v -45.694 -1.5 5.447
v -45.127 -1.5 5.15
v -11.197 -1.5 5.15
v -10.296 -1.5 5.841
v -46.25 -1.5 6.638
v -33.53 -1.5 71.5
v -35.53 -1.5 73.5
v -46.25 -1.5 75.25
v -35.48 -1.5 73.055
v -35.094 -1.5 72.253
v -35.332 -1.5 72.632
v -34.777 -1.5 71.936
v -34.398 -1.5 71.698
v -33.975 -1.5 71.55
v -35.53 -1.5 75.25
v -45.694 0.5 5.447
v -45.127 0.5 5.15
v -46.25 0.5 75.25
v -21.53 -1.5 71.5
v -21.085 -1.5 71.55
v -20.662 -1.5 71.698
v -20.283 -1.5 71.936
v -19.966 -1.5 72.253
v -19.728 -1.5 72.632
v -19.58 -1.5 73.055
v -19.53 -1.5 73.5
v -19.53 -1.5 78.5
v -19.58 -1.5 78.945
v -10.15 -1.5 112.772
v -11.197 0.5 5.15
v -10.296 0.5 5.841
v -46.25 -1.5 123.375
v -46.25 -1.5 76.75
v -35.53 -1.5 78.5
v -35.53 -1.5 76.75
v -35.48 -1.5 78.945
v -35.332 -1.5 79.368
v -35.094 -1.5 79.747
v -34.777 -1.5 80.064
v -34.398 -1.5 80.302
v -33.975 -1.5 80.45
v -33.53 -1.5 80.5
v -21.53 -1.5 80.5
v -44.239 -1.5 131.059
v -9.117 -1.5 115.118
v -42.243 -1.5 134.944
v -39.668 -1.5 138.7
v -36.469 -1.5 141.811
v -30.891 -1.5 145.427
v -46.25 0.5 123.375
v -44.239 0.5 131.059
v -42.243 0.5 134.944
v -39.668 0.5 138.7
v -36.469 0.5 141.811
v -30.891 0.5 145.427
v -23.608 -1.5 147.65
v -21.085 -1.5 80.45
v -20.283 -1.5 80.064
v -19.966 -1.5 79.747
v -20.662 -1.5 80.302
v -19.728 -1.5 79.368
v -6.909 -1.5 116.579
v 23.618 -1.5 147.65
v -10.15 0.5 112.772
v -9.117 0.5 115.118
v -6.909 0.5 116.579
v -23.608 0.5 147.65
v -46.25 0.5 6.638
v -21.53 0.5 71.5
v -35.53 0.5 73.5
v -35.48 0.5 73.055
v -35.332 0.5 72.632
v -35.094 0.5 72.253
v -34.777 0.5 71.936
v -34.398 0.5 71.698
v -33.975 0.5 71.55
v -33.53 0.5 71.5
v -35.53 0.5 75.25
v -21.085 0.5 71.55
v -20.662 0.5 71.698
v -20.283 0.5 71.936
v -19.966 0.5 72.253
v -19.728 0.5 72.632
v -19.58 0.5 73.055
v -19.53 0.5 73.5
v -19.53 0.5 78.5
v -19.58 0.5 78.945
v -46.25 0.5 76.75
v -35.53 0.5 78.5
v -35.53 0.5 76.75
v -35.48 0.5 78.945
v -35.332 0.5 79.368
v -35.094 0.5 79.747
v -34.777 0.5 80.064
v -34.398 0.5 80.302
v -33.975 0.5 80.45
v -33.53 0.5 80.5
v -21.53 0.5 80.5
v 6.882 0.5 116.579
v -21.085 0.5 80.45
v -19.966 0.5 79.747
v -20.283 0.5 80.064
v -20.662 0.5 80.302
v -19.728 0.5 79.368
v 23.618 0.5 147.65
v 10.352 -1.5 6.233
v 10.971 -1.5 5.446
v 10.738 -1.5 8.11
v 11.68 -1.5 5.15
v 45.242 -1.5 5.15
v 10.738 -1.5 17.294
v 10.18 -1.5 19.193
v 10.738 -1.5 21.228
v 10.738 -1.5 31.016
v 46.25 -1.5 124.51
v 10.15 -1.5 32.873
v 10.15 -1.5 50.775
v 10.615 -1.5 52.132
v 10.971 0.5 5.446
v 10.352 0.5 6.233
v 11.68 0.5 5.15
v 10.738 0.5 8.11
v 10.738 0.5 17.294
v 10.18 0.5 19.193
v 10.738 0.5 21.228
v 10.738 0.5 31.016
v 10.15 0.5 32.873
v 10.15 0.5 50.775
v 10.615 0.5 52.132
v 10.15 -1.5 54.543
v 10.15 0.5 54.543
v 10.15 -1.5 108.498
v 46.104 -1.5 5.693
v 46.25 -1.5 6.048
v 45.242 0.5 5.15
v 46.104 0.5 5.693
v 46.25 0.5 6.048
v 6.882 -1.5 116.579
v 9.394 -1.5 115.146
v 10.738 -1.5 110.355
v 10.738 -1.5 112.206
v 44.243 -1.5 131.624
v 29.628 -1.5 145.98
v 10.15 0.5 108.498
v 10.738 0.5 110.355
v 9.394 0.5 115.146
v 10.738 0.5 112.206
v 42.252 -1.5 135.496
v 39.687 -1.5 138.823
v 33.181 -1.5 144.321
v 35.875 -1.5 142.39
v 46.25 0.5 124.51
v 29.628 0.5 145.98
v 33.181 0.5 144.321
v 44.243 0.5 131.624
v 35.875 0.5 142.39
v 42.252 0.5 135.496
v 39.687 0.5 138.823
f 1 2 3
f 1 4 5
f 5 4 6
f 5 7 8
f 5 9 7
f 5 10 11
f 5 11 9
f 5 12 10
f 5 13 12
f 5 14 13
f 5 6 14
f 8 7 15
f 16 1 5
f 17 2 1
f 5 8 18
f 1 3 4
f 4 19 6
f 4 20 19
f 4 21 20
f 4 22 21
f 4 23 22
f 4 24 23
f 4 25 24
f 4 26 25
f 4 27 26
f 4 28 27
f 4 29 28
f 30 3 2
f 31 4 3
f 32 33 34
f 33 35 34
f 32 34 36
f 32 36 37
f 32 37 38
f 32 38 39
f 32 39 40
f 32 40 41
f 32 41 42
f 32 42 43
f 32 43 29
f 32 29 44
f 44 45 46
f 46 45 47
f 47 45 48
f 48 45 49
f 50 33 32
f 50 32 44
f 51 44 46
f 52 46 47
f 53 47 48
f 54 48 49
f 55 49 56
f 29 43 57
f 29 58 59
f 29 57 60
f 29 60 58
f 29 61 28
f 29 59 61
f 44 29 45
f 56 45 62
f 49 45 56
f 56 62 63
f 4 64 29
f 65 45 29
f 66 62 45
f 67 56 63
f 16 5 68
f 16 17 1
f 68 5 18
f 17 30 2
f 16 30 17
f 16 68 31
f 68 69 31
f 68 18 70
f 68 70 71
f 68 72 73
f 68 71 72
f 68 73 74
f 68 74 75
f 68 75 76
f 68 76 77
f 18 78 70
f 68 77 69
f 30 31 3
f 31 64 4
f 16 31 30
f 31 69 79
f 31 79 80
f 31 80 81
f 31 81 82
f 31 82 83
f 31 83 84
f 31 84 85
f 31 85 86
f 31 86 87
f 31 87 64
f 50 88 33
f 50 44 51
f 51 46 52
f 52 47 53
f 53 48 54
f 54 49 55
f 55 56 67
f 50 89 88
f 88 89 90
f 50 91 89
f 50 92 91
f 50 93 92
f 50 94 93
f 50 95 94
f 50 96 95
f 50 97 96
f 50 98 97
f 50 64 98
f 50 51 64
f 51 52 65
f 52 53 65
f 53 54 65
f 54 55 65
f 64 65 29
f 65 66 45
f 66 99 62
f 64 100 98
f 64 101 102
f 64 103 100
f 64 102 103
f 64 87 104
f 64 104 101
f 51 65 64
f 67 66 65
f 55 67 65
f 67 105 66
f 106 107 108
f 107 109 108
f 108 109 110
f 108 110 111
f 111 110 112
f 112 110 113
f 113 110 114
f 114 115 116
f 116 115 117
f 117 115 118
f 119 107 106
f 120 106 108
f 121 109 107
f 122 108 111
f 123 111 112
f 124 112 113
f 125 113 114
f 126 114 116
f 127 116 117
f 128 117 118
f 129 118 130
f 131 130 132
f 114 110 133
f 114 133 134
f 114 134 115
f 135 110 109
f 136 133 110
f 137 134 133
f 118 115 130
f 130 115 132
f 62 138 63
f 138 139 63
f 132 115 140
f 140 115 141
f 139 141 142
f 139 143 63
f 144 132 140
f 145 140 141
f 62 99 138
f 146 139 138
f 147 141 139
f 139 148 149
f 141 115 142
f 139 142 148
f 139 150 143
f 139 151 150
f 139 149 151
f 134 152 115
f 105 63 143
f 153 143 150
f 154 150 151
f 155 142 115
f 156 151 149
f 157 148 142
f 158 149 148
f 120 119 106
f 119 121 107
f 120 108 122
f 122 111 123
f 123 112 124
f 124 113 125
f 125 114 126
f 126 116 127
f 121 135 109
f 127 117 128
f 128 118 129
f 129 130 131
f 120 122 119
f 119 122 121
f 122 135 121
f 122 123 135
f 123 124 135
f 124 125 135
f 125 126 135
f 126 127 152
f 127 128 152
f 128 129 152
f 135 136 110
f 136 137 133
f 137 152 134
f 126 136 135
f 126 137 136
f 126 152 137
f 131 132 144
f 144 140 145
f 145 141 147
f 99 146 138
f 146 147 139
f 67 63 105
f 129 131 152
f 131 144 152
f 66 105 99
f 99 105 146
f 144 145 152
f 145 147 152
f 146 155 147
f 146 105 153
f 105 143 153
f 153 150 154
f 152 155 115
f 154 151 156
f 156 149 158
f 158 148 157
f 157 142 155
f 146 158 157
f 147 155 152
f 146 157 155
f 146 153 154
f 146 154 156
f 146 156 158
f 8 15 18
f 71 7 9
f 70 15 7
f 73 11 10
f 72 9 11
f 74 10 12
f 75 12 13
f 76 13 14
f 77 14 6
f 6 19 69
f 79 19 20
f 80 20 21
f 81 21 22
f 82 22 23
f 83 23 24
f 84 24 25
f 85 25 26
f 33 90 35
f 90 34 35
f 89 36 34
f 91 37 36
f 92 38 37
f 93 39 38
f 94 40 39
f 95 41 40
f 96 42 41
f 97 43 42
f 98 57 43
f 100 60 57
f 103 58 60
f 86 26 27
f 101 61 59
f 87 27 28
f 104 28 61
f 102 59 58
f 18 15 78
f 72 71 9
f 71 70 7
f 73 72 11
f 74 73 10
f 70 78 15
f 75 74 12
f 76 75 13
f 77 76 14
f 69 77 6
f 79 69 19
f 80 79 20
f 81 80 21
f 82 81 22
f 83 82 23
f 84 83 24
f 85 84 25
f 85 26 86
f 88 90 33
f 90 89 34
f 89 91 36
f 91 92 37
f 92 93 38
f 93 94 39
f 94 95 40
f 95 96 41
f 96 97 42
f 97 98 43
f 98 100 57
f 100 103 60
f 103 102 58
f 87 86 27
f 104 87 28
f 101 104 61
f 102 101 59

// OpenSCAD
// file: shape_pts.scad
// Letter n traced from images/engenesis_n.png (Housing + Diffuser Front View) via octolamp-lamp-base.
// Housing exterior 100.00 x 150.00 mm (94.00 x 144.00 mm interior + 3.00 mm Octolamp wall). Open-bottom n, no counter.
// Diffuser carries the centred top notch from the reference; the housing keeps a standard rounded top.

shape_w = 94.00;
shape_h = 144.00;
rec_chip_x = -28.00;
rec_chip_z = 98.50;
rec_cable_x = -28.00;
rec_ziptie_z = 73.0;
rec_keyhole_z = 59.0;
rec_slit_dir = -1;
rec_snap_top_x = 0.17;
rec_snap_bot_x = -28.27;
rec_pillars = [[26.0, 120.0], [28.0, 90.0], [28.0, 60.0]];

shape_pts = [[47.000,120.214],[47.000,1.500],[46.706,0.786],[45.458,0.000],[11.530,0.000],[10.502,0.429],[9.547,1.643],[9.988,3.786],[9.988,12.786],[9.400,14.786],[9.988,16.929],[9.988,26.500],[9.400,28.357],[9.400,46.500],[9.841,47.786],[9.400,50.071],[9.400,104.214],[9.988,106.071],[9.988,107.643],[8.812,110.214],[6.683,111.429],[-6.683,111.429],[-8.519,110.214],[-9.400,108.214],[-9.547,1.071],[-10.942,0.000],[-45.311,0.000],[-46.266,0.500],[-47.000,2.071],[-47.000,119.071],[-44.944,126.929],[-42.888,130.929],[-40.244,134.786],[-36.939,138.000],[-31.211,141.714],[-23.720,144.000],[23.720,144.000],[29.889,142.286],[33.561,140.571],[36.352,138.571],[40.244,134.929],[42.888,131.500],[44.944,127.500]];
shape_paths = [[0, 1, 2, 3, 4, 5, 6, 7, 8, 9, 10, 11, 12, 13, 14, 15, 16, 17, 18, 19, 20, 21, 22, 23, 24, 25, 26, 27, 28, 29, 30, 31, 32, 33, 34, 35, 36, 37, 38, 39, 40, 41, 42]];

diffuser_shape_pts = [[47.000,119.643],[47.000,1.500],[46.706,0.786],[45.458,0.000],[11.530,0.000],[10.134,1.071],[9.988,17.929],[9.400,19.786],[9.400,21.357],[9.988,23.214],[9.988,37.929],[9.400,39.786],[9.400,49.929],[9.988,51.786],[9.400,55.643],[9.400,67.643],[9.988,69.643],[9.400,71.786],[9.988,74.643],[9.988,80.214],[9.400,82.071],[9.547,86.500],[9.988,87.786],[9.988,107.643],[9.106,110.071],[8.005,111.000],[6.683,111.429],[-6.683,111.429],[-8.372,110.357],[-9.400,107.643],[-9.547,1.071],[-10.942,0.000],[-44.870,0.000],[-46.339,0.857],[-47.000,2.071],[-47.000,115.643],[-46.413,117.500],[-46.413,119.643],[-45.091,124.357],[-42.300,130.357],[-40.831,132.500],[-35.764,137.571],[-32.386,140.000],[-26.364,142.857],[-21.958,144.000],[-8.005,144.000],[-6.977,143.714],[-3.231,140.500],[-0.881,135.071],[0.073,134.429],[1.469,135.071],[2.056,137.214],[4.553,141.500],[7.564,143.714],[8.592,144.000],[21.958,144.000],[26.952,142.857],[31.798,140.857],[38.702,135.857],[42.888,130.357],[45.531,125.214]];
diffuser_shape_paths = [[0, 1, 2, 3, 4, 5, 6, 7, 8, 9, 10, 11, 12, 13, 14, 15, 16, 17, 18, 19, 20, 21, 22, 23, 24, 25, 26, 27, 28, 29, 30, 31, 32, 33, 34, 35, 36, 37, 38, 39, 40, 41, 42, 43, 44, 45, 46, 47, 48, 49, 50, 51, 52, 53, 54, 55, 56, 57, 58, 59, 60]];

module shape_2d(pts = shape_pts) {
    polygon(points = pts, paths = shape_paths);
}

module diffuser_shape_2d(pts = diffuser_shape_pts) {
    polygon(points = pts, paths = diffuser_shape_paths);
}
// main file
// Letter "n" internal white reflector plate (2.00 mm thick, 16 x 9 mm cable pocket + 1.50 mm side-entry wire slit).
// Opens and exports standalone in OpenSCAD / OpenSCAD.js.

use <lamp_core.scad>

render_lamp_part("reflector");
